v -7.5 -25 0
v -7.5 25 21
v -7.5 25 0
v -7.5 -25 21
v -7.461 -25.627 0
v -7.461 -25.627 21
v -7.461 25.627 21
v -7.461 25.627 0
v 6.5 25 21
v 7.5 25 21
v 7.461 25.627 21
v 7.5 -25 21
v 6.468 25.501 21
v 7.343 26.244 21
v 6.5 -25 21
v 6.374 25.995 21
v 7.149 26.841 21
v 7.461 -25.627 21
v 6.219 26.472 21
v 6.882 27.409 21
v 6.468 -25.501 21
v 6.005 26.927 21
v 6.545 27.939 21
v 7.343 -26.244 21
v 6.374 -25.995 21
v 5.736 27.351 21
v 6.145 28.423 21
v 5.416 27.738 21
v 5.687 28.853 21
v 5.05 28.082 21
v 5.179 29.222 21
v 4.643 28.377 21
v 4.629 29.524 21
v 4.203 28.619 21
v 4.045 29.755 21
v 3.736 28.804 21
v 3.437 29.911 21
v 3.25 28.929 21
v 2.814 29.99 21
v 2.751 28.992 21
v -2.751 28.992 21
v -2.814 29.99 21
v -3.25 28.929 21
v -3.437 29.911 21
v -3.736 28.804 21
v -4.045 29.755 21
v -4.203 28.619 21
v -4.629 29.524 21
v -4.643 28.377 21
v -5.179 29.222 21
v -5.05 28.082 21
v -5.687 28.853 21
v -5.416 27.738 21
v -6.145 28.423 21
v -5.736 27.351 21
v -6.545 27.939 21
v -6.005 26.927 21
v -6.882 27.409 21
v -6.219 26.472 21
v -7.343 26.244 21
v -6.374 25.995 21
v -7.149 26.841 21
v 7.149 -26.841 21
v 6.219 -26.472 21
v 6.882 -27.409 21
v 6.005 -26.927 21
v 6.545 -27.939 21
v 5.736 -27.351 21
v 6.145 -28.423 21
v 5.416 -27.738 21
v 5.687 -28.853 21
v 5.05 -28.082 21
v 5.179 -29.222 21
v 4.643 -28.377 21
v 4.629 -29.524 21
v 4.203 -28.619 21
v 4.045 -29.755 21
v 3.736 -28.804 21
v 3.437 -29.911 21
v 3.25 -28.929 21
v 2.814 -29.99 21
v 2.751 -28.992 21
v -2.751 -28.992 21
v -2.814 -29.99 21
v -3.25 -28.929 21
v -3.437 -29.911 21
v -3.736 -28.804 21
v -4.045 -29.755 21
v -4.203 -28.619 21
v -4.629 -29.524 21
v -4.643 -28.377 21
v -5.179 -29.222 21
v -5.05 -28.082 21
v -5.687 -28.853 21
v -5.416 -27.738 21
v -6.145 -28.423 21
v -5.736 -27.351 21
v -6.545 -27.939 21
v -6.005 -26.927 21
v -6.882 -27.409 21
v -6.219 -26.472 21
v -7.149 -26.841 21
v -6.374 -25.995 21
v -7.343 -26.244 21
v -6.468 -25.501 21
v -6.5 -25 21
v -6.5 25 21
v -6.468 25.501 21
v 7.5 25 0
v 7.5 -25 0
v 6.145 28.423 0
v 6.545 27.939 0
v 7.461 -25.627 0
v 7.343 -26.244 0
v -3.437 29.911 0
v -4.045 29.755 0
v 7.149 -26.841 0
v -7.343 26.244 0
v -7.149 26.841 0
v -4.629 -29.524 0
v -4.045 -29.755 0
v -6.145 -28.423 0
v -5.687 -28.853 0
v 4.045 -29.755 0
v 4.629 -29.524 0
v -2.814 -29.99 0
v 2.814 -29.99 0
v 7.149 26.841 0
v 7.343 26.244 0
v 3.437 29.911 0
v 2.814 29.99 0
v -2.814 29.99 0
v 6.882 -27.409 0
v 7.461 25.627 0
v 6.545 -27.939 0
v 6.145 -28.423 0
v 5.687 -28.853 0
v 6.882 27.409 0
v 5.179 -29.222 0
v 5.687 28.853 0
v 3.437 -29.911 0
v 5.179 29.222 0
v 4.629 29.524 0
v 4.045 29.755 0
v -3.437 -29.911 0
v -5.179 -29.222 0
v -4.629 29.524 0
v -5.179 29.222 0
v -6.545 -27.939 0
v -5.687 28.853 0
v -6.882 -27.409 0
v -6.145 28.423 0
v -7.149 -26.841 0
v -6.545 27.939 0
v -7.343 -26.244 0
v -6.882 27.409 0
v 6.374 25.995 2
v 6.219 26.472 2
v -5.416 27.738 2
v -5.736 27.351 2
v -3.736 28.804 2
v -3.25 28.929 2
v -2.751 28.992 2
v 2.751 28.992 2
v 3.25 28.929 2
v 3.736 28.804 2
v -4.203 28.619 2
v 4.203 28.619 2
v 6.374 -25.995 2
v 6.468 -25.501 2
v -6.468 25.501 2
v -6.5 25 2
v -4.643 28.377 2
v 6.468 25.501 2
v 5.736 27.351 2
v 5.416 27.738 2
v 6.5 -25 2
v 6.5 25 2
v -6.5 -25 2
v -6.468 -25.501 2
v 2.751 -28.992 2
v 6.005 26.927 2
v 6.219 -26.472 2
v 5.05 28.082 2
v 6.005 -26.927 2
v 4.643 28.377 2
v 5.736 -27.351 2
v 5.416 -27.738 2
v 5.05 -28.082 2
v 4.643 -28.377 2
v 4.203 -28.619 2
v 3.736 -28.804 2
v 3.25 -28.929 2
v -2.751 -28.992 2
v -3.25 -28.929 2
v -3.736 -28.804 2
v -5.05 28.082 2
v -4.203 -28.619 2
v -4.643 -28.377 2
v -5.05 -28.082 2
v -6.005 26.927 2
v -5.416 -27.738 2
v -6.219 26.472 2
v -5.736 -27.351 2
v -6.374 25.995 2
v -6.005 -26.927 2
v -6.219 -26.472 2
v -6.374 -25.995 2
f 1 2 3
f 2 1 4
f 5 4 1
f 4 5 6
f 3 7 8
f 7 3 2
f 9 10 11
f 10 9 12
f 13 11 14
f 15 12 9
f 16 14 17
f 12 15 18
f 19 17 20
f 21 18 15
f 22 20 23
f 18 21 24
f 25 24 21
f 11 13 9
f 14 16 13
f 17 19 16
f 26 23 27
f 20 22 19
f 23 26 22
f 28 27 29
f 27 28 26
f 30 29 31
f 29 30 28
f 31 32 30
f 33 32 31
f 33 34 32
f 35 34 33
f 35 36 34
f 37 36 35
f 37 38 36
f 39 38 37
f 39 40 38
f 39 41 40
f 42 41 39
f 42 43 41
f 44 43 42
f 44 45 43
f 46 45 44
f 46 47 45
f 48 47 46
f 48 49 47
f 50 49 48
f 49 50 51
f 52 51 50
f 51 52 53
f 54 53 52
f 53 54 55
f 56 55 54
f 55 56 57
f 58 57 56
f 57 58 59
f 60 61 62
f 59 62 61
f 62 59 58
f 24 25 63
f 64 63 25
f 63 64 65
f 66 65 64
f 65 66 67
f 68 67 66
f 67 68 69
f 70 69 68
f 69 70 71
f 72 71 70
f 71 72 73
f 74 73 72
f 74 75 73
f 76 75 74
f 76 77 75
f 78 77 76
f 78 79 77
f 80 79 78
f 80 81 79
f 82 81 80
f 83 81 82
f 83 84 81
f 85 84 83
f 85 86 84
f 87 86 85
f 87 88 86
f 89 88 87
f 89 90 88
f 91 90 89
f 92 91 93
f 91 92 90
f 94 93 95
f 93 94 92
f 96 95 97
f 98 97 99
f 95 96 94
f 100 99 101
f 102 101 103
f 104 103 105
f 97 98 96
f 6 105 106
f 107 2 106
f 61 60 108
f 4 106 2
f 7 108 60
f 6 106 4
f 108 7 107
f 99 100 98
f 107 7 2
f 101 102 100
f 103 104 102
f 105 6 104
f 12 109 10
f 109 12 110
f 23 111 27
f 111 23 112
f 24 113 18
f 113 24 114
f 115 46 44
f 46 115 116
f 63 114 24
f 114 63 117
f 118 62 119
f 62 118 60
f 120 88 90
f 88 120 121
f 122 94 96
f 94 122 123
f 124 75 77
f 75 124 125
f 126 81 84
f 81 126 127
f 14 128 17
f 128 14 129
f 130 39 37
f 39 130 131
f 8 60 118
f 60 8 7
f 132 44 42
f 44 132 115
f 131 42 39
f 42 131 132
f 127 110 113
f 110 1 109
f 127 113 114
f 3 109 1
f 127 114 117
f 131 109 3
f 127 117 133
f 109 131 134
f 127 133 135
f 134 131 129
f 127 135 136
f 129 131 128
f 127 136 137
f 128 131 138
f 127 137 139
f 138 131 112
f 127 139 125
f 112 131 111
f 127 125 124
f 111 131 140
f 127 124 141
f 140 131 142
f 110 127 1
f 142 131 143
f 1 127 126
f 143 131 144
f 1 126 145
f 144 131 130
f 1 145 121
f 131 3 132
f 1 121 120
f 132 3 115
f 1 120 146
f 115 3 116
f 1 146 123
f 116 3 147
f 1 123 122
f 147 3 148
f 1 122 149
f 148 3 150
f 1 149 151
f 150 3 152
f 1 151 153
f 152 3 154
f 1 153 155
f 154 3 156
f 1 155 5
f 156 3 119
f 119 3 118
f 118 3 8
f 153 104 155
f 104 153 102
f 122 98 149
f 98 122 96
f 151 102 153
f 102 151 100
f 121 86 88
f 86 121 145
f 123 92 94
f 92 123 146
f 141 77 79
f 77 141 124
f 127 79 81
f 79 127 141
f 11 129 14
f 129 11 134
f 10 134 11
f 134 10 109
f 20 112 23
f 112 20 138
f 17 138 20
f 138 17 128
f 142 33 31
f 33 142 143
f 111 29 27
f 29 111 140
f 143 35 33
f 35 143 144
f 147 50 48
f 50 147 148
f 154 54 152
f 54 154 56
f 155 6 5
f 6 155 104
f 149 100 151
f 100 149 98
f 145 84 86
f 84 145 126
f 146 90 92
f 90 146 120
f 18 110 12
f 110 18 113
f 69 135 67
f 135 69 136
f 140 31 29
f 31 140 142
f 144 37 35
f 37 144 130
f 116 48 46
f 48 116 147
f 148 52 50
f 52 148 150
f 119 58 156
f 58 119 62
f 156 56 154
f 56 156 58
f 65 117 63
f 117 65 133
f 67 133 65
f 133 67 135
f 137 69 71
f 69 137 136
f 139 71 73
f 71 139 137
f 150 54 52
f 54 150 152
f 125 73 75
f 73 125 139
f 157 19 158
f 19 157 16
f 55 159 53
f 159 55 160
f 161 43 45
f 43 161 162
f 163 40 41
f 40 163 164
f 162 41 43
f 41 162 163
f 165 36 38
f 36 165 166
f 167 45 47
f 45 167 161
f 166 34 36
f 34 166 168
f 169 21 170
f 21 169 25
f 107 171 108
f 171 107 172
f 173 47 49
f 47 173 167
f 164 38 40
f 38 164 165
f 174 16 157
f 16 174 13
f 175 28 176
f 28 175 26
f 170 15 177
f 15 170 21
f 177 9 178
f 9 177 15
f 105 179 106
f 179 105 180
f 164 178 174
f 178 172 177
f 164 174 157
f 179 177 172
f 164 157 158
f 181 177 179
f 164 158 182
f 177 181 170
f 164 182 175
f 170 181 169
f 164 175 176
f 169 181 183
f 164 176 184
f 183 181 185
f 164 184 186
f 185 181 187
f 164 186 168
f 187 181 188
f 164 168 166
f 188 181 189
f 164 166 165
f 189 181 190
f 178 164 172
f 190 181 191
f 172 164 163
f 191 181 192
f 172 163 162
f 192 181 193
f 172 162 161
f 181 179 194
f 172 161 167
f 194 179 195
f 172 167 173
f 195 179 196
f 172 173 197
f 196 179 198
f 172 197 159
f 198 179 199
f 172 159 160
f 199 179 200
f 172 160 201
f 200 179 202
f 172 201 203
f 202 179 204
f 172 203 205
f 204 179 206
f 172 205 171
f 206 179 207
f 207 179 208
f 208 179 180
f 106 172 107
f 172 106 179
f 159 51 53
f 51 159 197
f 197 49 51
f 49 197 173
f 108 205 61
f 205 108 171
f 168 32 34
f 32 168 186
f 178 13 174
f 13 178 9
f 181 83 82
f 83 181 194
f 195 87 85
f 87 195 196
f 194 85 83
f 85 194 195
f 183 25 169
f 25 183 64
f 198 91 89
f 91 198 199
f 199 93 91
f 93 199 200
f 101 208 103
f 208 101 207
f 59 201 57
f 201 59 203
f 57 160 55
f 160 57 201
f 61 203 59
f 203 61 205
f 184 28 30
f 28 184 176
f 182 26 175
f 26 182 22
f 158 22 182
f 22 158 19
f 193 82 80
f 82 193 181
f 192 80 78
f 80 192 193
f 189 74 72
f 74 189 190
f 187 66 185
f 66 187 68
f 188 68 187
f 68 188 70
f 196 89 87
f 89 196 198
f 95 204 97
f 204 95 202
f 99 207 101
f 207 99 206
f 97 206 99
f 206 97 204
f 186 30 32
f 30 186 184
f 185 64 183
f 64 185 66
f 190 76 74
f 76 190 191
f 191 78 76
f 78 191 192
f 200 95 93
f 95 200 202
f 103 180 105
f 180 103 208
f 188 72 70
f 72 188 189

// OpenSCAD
$fn = 50;


difference() {
	union() {
		hull() {
			translate(v = [-2.5000000000, 25.0000000000, 0]) {
				cylinder(h = 21, r = 5);
			}
			translate(v = [2.5000000000, 25.0000000000, 0]) {
				cylinder(h = 21, r = 5);
			}
			translate(v = [-2.5000000000, -25.0000000000, 0]) {
				cylinder(h = 21, r = 5);
			}
			translate(v = [2.5000000000, -25.0000000000, 0]) {
				cylinder(h = 21, r = 5);
			}
		}
	}
	union() {
		translate(v = [0, 0, 2]) {
			#hull() {
				translate(v = [-2.5000000000, 25.0000000000, 0]) {
					cylinder(h = 19, r = 4);
				}
				translate(v = [2.5000000000, 25.0000000000, 0]) {
					cylinder(h = 19, r = 4);
				}
				translate(v = [-2.5000000000, -25.0000000000, 0]) {
					cylinder(h = 19, r = 4);
				}
				translate(v = [2.5000000000, -25.0000000000, 0]) {
					cylinder(h = 19, r = 4);
				}
			}
		}
	}
}
